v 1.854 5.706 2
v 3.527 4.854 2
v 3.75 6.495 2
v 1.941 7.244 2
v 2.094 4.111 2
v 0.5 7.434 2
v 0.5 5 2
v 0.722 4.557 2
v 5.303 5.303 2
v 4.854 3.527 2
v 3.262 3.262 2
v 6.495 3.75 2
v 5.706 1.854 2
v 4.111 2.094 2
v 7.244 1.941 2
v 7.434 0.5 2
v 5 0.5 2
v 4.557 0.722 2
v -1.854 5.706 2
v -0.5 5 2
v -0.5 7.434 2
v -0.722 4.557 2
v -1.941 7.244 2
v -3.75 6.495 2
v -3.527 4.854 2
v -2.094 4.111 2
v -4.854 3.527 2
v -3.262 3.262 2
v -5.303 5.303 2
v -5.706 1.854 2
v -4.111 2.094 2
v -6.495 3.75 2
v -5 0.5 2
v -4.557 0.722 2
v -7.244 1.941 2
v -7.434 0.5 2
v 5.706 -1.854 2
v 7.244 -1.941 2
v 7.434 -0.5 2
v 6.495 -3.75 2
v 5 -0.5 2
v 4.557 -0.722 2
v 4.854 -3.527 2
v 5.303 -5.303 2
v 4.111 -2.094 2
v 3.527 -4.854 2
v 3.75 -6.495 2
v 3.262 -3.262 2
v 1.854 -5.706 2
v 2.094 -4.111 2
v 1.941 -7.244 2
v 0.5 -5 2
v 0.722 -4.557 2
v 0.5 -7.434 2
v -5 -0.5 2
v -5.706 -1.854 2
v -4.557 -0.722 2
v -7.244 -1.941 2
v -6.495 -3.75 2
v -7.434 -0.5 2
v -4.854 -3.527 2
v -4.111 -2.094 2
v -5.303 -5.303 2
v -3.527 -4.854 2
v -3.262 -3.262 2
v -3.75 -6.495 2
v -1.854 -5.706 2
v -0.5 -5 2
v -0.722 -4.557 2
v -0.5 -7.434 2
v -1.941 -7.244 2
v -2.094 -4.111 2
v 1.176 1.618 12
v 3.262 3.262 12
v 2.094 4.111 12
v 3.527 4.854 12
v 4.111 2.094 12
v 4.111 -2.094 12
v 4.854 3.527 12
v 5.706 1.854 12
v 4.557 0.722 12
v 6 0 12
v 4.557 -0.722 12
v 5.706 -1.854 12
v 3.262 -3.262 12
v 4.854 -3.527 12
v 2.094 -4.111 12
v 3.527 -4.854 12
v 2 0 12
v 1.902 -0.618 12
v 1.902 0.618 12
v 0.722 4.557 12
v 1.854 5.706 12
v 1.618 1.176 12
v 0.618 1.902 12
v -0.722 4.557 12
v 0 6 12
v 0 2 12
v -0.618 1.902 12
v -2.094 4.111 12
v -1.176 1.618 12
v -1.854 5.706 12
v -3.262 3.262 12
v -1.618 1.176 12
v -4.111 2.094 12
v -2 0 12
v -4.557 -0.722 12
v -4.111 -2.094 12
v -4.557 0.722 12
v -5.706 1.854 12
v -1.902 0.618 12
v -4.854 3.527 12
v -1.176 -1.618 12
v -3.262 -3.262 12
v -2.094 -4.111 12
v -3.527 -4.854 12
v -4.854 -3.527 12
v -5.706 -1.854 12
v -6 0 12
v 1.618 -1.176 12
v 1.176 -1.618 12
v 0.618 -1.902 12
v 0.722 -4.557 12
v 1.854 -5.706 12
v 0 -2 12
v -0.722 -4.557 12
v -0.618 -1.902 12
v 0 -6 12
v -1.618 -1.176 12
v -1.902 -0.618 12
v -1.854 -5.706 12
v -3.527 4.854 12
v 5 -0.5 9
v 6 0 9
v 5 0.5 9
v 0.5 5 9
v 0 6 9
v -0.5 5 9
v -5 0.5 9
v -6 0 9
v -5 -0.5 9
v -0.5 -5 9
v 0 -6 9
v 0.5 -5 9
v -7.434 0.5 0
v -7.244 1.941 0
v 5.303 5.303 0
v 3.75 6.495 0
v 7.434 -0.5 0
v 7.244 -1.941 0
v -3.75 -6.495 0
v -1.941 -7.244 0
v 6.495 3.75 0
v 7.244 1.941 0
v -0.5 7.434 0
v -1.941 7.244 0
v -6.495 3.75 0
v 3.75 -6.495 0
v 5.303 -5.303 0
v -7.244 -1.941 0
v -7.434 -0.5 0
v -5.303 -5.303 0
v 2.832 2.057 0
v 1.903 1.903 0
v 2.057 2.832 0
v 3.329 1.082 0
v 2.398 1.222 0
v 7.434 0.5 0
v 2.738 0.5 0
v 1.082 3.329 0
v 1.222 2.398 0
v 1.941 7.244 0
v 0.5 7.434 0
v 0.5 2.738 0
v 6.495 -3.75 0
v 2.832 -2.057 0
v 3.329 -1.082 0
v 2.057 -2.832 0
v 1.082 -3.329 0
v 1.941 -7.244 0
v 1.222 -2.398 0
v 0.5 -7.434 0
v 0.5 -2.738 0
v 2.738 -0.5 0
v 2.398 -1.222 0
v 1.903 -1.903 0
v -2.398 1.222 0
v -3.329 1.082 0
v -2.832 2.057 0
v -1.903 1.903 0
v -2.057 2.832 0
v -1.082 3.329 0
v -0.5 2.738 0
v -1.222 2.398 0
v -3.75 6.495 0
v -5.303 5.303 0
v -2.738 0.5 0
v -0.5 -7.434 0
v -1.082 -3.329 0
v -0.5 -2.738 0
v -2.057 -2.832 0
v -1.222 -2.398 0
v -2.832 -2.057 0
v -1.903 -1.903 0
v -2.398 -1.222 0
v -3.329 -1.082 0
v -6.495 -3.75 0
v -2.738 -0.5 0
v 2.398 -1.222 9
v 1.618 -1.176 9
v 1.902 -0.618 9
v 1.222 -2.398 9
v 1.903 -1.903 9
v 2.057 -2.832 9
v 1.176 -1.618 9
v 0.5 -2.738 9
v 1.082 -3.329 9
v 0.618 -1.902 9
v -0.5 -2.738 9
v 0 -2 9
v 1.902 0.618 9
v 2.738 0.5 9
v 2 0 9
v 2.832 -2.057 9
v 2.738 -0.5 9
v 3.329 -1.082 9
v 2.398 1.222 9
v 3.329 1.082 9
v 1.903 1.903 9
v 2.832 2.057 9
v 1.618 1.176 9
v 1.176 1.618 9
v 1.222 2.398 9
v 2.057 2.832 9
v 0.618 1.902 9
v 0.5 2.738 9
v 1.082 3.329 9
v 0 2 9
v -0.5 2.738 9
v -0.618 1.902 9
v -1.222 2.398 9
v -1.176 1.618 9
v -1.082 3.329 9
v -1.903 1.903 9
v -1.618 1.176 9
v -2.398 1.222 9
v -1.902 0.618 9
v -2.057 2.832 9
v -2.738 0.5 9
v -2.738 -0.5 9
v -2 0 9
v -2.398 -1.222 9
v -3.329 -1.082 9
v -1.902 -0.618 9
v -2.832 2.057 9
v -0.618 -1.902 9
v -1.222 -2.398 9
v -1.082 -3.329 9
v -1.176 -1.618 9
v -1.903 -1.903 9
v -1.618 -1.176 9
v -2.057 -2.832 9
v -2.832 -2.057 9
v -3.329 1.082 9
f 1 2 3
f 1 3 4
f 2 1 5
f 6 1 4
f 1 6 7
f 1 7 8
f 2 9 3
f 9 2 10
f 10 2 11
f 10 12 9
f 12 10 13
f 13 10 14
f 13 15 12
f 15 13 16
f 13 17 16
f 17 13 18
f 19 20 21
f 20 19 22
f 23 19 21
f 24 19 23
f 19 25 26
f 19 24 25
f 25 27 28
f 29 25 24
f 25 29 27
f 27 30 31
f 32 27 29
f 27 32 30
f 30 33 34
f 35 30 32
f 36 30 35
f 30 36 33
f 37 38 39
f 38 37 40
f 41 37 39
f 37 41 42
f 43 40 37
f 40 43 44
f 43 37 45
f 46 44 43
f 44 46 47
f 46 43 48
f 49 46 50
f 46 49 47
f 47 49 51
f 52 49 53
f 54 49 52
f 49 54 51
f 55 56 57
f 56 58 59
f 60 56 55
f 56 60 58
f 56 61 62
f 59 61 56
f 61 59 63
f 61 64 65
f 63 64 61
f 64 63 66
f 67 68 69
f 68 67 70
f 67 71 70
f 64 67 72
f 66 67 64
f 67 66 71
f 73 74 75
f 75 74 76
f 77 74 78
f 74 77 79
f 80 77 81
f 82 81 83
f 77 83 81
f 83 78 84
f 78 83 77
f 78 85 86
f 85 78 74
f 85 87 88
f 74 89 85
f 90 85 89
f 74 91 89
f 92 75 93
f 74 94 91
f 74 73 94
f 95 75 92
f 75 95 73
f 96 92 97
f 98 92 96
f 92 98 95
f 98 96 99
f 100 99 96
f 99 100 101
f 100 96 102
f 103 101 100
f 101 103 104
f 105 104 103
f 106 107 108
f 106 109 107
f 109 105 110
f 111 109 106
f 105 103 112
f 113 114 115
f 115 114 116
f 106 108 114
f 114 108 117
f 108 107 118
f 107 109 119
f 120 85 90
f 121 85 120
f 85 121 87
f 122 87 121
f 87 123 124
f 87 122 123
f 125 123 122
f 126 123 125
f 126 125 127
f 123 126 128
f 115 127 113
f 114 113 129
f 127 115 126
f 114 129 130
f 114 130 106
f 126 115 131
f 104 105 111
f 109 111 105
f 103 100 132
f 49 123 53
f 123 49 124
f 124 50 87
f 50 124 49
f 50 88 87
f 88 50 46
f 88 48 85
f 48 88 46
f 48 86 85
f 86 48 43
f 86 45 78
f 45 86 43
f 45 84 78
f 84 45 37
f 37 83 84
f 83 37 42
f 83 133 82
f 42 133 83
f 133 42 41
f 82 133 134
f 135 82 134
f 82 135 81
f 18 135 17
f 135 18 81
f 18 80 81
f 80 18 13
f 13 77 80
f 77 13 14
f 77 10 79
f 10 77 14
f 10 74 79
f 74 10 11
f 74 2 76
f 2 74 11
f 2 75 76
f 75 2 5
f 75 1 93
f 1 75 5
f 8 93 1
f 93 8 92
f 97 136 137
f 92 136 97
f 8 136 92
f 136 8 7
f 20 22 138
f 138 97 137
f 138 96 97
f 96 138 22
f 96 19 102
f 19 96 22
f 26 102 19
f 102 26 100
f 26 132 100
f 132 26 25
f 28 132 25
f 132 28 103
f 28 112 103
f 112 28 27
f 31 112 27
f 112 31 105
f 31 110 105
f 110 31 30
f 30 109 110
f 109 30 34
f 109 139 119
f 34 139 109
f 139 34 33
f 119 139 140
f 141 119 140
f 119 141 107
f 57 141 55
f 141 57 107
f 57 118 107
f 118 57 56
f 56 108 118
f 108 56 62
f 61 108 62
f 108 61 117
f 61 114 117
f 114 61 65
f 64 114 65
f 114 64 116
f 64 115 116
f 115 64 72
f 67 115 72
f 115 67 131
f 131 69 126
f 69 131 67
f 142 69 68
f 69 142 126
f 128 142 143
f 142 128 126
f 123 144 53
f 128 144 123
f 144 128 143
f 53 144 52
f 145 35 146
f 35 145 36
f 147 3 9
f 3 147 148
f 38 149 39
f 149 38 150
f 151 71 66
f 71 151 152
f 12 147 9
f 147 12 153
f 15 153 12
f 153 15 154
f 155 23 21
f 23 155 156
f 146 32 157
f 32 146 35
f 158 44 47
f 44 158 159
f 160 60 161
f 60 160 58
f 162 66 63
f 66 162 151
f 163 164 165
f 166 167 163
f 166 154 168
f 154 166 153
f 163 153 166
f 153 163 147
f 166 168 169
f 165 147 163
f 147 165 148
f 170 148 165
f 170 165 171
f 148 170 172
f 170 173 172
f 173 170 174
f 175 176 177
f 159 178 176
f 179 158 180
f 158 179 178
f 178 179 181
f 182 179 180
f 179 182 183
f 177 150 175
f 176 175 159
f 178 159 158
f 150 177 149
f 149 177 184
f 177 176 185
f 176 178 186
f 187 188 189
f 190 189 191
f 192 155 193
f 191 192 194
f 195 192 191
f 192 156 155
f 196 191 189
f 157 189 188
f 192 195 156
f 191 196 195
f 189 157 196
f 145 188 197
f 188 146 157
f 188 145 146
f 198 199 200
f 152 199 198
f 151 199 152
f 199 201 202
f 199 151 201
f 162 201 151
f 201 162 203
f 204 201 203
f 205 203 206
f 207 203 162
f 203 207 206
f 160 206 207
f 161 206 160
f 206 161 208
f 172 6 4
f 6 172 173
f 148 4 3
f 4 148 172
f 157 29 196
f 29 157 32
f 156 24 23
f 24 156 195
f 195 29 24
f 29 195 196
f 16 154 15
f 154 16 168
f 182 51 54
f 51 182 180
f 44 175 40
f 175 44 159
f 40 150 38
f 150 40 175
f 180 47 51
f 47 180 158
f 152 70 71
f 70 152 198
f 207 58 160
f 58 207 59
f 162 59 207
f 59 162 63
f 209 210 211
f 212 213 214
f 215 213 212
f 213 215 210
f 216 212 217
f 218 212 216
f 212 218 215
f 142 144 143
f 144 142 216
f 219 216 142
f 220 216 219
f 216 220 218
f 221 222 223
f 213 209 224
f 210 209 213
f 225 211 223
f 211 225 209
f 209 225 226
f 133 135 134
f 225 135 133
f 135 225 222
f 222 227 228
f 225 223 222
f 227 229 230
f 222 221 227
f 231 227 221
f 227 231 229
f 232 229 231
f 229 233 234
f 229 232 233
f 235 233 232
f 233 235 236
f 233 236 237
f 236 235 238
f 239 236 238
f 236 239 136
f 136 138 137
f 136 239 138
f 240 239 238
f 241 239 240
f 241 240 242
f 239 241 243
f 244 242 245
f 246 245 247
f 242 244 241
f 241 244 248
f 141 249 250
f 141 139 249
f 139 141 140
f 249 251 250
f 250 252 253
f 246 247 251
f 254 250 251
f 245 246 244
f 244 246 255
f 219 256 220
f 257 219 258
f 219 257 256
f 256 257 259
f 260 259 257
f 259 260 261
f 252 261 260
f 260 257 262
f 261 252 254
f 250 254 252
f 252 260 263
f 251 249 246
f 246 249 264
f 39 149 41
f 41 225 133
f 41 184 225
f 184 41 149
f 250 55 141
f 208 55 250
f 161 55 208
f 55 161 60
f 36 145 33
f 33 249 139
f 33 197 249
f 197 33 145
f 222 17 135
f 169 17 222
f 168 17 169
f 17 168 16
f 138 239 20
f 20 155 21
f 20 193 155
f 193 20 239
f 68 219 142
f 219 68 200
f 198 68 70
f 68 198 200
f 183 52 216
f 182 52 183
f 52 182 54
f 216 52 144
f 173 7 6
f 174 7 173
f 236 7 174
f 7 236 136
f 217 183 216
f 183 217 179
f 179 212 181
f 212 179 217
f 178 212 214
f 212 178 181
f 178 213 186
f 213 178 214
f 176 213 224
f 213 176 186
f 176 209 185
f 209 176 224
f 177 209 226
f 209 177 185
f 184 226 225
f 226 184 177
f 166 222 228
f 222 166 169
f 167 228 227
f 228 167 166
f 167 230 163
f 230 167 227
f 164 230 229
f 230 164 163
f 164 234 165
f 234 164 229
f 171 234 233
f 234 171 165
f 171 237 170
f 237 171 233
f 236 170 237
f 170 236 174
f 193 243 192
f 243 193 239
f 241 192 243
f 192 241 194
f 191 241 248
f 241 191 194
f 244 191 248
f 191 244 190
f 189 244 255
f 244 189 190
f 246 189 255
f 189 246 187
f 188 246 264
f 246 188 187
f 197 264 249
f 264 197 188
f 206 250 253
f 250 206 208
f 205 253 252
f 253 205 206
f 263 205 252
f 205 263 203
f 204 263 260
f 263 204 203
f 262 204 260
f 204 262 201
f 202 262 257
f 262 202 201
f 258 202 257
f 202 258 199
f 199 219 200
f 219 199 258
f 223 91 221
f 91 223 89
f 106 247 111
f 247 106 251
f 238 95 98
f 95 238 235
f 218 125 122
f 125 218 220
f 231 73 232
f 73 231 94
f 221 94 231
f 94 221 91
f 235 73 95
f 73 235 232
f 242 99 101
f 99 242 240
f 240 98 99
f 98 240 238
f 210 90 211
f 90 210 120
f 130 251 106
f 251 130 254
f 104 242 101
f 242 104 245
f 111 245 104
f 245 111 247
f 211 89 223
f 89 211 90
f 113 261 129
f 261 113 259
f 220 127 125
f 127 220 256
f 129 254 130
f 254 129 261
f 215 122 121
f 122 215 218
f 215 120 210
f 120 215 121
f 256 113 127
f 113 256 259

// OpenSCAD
module key()
polygon(points=[[1,0],[-1,0],[0,2]]);

module bit()
union(){
    circle(4.4);
for (z = [0:18:360]) {
rotate([0,0,z])
translate([0,4,0])
key();
}
}

module innerbit()
union(){
    circle(2);
for (z = [0:18:360]) {
rotate([0,0,z])
translate([0,1.5,0])
key();
}
}

module innerThingy()
translate([0,0,-1])
linear_extrude(height = 10, convexity=20){
    innerbit();
}

module outerThingy()
linear_extrude(height = 10, convexity=20){
    bit();
}

module solidThingy()
union(){
translate([0,0,2])
outerThingy();
cylinder(2,15/2,15/2);
}

module gappyThingy()
translate([0,0,-1])
for (z = [0:90:180]) {
    rotate([0,0,z])
translate([-10,-0.5,0])
cube([20,1,10]);
}

module wholeThingy()
difference(){
    solidThingy();
    gappyThingy();;
}

difference(){
difference(){
    wholeThingy();
innerThingy();
    }
    cylinder(20,2,2,$fn=20);
}
